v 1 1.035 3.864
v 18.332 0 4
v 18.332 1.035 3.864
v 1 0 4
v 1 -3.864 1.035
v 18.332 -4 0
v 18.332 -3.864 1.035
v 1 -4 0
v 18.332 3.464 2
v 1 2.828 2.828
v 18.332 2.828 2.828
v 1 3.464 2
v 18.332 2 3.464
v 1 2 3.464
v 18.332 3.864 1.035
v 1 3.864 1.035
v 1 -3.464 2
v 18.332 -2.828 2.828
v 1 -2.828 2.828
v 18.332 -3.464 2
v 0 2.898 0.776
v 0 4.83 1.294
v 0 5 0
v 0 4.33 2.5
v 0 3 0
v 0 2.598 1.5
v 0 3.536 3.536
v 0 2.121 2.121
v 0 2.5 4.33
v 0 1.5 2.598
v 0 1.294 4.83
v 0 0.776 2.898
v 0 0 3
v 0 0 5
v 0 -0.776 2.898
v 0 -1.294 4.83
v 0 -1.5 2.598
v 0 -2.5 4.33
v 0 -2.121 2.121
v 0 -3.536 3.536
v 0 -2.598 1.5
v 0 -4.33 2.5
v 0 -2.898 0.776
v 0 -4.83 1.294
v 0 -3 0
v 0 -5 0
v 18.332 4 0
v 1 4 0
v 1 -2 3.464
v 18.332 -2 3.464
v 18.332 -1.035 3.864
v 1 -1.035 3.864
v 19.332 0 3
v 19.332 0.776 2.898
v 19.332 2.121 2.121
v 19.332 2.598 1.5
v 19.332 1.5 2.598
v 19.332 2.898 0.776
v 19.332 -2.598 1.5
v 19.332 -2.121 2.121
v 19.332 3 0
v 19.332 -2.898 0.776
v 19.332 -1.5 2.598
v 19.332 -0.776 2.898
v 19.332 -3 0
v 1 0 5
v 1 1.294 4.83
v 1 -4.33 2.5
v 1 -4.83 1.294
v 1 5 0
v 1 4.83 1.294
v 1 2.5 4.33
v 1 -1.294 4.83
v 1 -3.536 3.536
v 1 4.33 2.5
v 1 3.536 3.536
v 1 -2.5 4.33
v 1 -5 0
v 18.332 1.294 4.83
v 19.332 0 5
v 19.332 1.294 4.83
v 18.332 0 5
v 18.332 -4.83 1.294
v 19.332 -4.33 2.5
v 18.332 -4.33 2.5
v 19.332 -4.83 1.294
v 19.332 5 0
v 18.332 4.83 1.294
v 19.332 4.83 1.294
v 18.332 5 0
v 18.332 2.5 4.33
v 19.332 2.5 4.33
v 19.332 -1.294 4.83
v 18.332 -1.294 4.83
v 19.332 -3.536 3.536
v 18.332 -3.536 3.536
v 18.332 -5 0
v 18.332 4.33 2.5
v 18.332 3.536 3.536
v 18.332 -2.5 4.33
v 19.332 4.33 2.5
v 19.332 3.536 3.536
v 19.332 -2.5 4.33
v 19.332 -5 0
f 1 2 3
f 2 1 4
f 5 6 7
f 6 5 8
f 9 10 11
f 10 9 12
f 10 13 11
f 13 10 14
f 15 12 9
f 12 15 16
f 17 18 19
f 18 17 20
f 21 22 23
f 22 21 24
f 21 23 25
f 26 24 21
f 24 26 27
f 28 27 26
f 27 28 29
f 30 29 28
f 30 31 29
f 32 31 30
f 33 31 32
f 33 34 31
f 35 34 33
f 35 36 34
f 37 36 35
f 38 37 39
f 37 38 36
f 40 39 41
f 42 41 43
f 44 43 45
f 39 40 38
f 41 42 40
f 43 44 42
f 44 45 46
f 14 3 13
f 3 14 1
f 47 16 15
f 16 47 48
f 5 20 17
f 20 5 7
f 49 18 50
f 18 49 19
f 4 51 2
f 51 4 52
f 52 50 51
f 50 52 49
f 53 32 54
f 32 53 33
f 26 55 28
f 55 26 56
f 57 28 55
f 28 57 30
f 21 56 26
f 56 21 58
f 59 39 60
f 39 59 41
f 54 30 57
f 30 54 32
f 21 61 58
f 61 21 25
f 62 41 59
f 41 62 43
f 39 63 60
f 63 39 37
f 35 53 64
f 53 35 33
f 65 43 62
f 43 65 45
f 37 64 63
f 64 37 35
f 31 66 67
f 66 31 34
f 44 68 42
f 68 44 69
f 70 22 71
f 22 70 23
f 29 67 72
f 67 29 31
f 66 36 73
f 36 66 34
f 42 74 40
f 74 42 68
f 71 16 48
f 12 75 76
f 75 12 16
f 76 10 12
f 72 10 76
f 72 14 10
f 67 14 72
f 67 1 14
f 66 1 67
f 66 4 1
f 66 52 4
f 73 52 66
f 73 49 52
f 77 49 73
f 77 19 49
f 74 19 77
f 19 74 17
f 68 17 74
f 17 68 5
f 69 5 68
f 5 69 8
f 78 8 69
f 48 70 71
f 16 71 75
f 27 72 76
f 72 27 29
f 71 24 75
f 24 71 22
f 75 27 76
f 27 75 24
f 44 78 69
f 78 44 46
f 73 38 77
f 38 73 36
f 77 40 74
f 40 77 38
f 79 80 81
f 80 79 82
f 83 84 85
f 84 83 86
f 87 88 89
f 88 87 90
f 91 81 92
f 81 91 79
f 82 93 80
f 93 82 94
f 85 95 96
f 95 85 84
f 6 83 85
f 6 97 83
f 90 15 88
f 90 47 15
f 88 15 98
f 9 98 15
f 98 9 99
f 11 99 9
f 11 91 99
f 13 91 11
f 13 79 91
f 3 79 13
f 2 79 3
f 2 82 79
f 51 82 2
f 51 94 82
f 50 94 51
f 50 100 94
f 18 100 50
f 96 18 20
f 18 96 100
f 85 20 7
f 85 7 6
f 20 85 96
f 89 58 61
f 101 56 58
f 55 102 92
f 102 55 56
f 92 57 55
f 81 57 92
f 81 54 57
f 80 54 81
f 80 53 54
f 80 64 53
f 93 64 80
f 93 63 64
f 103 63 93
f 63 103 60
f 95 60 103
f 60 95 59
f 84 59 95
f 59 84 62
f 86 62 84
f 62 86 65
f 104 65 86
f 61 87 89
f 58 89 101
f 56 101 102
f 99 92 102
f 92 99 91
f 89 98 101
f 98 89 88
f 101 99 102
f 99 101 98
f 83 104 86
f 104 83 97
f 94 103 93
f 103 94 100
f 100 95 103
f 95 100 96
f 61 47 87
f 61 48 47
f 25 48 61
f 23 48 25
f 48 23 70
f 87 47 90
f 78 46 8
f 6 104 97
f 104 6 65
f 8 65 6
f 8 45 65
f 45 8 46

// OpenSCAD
// file: ../build_environments.scad
// build_environments.scad: modules to build level sections
//

module pool(diameter=10.0, wall_height=2.0, step_width=3.0, connections=[])
{
    difference() {
        union() {
        difference() {
            cylinder(h=0.5,r1=diameter+step_width,r2=diameter+step_width,$fn=48);
            translate([0,0,-0.1])
                cylinder(h=0.7,r1=diameter,r2=diameter,$fn=48);
        }
        difference() {
            cylinder(h=wall_height,r1=diameter+step_width+1.0,r2=diameter+step_width+1.0,$fn=48);
            translate([0,0,-0.1])
                cylinder(h=wall_height+0.2,r1=diameter+step_width,r2=diameter+step_width,$fn=48);
        }
        }
    
        for (c = connections)
        {
            rotate([0,90,0]) {
                angle = atan2(c[1],c[0]);
                rotate([-angle,0,0]) {
                    cylinder(h=diameter+5.0,r1=c[2],r2=c[2],$fn=48);
                }
            }
        }
    }
}

module straight(length=10.0, width=2.0, dy1=0.0, dy2=0.0, dz=0.0)
{
    dims = [0, 0, 0, 0, 0, (dz/length)];
    matrix = [
        [ 1, dims[0], dims[1], 0 ],
        [ dims[2], 1, dims[4], 0 ],
        [ dims[5], dims[3], 1, 0 ],
        [ 0, 0, 0, 1 ]
    ];
    multmatrix(matrix)
    difference() {
        translate([dy1,0,0])
        union() {
            rotate([0,90,0]) {
                difference() {
                    cylinder(h=(length-dy1-dy2),r1=width+1.0,r2=width+1.0,$fn=24);
                    translate([0,0,-0.1])
                        cylinder(h=(length-dy1-dy2+0.2),r1=width,r2=width,$fn=24);
                }
                difference() {
                    cylinder(h=1.0,r1=width+2.0,r2=width+2.0,$fn=24);
                    translate([0,0,-0.1])
                        cylinder(h=1.2,r1=width,r2=width,$fn=24);
                }
                translate([0,0,(length-dy1-dy2)-1.0]) {
                    difference() {
                        cylinder(h=1.0,r1=width+2.0,r2=width+2.0,$fn=24);
                        translate([0,0,-0.1])
                            cylinder(h=1.2,r1=width,r2=width,$fn=24);
                    }
                }
            }
        }
        translate([0,0,-(2*width+4.0)/2])
            cube([3*length,3*length,2*width+4.0],center=true);
    }
}

module curve(p0=[0,0], center=[0,0], dir=1, angle=0.0, width=2.0)
{
    radius = sqrt((p0[0]-center[0])*(p0[0]-center[0]) + (p0[1]-center[1])*(p0[1]-center[1]));
    if (dir == 0) {
        difference() {
            rotate([0,0,-90])
            difference() {
                rotate_extrude(angle = angle, convexity = 10, $fn=32)
                    translate([radius, 0, 0])
                        circle(r = width+1.0,$fn=24);
                rotate([0,0,-1.0])
                    rotate_extrude(angle = angle+2.0, convexity = 10, $fn=32)
                        translate([radius, 0, 0])
                            circle(r = width,$fn=24);
            }
            translate([0,0,-(2*width+4.0)/2])
                cube([5*radius,5*radius,2*width+4.0],center=true);
        }
    }
    else {
        difference() {
            rotate([0,0,90])
            difference() {
                rotate_extrude(angle = -angle, convexity = 10, $fn=32)
                    translate([radius, 0, 0])
                        circle(r = width+1.0,$fn=24);
                rotate([0,0,1.0])
                    rotate_extrude(angle = -angle-2.0, convexity = 10, $fn=32)
                        translate([radius, 0, 0])
                            circle(r = width,$fn=24);
            }
            translate([0,0,-(2*width+4.0)/2])
                cube([5*radius,5*radius,2*width+4.0],center=true);
        }
    }

}

// test pool
//pool(diameter=12.0000, wall_height=3.0000, step_width=3.0000, connections=[[0.0000,-26.0000,2.0000], [23.6074,0.0000,2.0000]]);

// test straight, slope
//straight(length=26.0000, width=2.0000, dy1=11.8322, dy2=6.7082, dz=0.0000);
//straight(length=29.1549, width=12.0000, dy1=0.0000, dy2=0.0000, dz=-15.0000);

// test curve
//curve(p0=[23.6074, 0.0000], center=[23.6074, 5.0000], dir=0, angle=60.1011, width=2.0000);
//curve(p0=[33.6426, 12.4219], center=[37.9771, 9.9295], dir=1, angle=120.4627, width=2.0000);
// main file
use <../build_environments.scad>;
straight(length=19.3318, width=3.0000, dy1=0.0000, dy2=0.0000, dz=0.0000);
